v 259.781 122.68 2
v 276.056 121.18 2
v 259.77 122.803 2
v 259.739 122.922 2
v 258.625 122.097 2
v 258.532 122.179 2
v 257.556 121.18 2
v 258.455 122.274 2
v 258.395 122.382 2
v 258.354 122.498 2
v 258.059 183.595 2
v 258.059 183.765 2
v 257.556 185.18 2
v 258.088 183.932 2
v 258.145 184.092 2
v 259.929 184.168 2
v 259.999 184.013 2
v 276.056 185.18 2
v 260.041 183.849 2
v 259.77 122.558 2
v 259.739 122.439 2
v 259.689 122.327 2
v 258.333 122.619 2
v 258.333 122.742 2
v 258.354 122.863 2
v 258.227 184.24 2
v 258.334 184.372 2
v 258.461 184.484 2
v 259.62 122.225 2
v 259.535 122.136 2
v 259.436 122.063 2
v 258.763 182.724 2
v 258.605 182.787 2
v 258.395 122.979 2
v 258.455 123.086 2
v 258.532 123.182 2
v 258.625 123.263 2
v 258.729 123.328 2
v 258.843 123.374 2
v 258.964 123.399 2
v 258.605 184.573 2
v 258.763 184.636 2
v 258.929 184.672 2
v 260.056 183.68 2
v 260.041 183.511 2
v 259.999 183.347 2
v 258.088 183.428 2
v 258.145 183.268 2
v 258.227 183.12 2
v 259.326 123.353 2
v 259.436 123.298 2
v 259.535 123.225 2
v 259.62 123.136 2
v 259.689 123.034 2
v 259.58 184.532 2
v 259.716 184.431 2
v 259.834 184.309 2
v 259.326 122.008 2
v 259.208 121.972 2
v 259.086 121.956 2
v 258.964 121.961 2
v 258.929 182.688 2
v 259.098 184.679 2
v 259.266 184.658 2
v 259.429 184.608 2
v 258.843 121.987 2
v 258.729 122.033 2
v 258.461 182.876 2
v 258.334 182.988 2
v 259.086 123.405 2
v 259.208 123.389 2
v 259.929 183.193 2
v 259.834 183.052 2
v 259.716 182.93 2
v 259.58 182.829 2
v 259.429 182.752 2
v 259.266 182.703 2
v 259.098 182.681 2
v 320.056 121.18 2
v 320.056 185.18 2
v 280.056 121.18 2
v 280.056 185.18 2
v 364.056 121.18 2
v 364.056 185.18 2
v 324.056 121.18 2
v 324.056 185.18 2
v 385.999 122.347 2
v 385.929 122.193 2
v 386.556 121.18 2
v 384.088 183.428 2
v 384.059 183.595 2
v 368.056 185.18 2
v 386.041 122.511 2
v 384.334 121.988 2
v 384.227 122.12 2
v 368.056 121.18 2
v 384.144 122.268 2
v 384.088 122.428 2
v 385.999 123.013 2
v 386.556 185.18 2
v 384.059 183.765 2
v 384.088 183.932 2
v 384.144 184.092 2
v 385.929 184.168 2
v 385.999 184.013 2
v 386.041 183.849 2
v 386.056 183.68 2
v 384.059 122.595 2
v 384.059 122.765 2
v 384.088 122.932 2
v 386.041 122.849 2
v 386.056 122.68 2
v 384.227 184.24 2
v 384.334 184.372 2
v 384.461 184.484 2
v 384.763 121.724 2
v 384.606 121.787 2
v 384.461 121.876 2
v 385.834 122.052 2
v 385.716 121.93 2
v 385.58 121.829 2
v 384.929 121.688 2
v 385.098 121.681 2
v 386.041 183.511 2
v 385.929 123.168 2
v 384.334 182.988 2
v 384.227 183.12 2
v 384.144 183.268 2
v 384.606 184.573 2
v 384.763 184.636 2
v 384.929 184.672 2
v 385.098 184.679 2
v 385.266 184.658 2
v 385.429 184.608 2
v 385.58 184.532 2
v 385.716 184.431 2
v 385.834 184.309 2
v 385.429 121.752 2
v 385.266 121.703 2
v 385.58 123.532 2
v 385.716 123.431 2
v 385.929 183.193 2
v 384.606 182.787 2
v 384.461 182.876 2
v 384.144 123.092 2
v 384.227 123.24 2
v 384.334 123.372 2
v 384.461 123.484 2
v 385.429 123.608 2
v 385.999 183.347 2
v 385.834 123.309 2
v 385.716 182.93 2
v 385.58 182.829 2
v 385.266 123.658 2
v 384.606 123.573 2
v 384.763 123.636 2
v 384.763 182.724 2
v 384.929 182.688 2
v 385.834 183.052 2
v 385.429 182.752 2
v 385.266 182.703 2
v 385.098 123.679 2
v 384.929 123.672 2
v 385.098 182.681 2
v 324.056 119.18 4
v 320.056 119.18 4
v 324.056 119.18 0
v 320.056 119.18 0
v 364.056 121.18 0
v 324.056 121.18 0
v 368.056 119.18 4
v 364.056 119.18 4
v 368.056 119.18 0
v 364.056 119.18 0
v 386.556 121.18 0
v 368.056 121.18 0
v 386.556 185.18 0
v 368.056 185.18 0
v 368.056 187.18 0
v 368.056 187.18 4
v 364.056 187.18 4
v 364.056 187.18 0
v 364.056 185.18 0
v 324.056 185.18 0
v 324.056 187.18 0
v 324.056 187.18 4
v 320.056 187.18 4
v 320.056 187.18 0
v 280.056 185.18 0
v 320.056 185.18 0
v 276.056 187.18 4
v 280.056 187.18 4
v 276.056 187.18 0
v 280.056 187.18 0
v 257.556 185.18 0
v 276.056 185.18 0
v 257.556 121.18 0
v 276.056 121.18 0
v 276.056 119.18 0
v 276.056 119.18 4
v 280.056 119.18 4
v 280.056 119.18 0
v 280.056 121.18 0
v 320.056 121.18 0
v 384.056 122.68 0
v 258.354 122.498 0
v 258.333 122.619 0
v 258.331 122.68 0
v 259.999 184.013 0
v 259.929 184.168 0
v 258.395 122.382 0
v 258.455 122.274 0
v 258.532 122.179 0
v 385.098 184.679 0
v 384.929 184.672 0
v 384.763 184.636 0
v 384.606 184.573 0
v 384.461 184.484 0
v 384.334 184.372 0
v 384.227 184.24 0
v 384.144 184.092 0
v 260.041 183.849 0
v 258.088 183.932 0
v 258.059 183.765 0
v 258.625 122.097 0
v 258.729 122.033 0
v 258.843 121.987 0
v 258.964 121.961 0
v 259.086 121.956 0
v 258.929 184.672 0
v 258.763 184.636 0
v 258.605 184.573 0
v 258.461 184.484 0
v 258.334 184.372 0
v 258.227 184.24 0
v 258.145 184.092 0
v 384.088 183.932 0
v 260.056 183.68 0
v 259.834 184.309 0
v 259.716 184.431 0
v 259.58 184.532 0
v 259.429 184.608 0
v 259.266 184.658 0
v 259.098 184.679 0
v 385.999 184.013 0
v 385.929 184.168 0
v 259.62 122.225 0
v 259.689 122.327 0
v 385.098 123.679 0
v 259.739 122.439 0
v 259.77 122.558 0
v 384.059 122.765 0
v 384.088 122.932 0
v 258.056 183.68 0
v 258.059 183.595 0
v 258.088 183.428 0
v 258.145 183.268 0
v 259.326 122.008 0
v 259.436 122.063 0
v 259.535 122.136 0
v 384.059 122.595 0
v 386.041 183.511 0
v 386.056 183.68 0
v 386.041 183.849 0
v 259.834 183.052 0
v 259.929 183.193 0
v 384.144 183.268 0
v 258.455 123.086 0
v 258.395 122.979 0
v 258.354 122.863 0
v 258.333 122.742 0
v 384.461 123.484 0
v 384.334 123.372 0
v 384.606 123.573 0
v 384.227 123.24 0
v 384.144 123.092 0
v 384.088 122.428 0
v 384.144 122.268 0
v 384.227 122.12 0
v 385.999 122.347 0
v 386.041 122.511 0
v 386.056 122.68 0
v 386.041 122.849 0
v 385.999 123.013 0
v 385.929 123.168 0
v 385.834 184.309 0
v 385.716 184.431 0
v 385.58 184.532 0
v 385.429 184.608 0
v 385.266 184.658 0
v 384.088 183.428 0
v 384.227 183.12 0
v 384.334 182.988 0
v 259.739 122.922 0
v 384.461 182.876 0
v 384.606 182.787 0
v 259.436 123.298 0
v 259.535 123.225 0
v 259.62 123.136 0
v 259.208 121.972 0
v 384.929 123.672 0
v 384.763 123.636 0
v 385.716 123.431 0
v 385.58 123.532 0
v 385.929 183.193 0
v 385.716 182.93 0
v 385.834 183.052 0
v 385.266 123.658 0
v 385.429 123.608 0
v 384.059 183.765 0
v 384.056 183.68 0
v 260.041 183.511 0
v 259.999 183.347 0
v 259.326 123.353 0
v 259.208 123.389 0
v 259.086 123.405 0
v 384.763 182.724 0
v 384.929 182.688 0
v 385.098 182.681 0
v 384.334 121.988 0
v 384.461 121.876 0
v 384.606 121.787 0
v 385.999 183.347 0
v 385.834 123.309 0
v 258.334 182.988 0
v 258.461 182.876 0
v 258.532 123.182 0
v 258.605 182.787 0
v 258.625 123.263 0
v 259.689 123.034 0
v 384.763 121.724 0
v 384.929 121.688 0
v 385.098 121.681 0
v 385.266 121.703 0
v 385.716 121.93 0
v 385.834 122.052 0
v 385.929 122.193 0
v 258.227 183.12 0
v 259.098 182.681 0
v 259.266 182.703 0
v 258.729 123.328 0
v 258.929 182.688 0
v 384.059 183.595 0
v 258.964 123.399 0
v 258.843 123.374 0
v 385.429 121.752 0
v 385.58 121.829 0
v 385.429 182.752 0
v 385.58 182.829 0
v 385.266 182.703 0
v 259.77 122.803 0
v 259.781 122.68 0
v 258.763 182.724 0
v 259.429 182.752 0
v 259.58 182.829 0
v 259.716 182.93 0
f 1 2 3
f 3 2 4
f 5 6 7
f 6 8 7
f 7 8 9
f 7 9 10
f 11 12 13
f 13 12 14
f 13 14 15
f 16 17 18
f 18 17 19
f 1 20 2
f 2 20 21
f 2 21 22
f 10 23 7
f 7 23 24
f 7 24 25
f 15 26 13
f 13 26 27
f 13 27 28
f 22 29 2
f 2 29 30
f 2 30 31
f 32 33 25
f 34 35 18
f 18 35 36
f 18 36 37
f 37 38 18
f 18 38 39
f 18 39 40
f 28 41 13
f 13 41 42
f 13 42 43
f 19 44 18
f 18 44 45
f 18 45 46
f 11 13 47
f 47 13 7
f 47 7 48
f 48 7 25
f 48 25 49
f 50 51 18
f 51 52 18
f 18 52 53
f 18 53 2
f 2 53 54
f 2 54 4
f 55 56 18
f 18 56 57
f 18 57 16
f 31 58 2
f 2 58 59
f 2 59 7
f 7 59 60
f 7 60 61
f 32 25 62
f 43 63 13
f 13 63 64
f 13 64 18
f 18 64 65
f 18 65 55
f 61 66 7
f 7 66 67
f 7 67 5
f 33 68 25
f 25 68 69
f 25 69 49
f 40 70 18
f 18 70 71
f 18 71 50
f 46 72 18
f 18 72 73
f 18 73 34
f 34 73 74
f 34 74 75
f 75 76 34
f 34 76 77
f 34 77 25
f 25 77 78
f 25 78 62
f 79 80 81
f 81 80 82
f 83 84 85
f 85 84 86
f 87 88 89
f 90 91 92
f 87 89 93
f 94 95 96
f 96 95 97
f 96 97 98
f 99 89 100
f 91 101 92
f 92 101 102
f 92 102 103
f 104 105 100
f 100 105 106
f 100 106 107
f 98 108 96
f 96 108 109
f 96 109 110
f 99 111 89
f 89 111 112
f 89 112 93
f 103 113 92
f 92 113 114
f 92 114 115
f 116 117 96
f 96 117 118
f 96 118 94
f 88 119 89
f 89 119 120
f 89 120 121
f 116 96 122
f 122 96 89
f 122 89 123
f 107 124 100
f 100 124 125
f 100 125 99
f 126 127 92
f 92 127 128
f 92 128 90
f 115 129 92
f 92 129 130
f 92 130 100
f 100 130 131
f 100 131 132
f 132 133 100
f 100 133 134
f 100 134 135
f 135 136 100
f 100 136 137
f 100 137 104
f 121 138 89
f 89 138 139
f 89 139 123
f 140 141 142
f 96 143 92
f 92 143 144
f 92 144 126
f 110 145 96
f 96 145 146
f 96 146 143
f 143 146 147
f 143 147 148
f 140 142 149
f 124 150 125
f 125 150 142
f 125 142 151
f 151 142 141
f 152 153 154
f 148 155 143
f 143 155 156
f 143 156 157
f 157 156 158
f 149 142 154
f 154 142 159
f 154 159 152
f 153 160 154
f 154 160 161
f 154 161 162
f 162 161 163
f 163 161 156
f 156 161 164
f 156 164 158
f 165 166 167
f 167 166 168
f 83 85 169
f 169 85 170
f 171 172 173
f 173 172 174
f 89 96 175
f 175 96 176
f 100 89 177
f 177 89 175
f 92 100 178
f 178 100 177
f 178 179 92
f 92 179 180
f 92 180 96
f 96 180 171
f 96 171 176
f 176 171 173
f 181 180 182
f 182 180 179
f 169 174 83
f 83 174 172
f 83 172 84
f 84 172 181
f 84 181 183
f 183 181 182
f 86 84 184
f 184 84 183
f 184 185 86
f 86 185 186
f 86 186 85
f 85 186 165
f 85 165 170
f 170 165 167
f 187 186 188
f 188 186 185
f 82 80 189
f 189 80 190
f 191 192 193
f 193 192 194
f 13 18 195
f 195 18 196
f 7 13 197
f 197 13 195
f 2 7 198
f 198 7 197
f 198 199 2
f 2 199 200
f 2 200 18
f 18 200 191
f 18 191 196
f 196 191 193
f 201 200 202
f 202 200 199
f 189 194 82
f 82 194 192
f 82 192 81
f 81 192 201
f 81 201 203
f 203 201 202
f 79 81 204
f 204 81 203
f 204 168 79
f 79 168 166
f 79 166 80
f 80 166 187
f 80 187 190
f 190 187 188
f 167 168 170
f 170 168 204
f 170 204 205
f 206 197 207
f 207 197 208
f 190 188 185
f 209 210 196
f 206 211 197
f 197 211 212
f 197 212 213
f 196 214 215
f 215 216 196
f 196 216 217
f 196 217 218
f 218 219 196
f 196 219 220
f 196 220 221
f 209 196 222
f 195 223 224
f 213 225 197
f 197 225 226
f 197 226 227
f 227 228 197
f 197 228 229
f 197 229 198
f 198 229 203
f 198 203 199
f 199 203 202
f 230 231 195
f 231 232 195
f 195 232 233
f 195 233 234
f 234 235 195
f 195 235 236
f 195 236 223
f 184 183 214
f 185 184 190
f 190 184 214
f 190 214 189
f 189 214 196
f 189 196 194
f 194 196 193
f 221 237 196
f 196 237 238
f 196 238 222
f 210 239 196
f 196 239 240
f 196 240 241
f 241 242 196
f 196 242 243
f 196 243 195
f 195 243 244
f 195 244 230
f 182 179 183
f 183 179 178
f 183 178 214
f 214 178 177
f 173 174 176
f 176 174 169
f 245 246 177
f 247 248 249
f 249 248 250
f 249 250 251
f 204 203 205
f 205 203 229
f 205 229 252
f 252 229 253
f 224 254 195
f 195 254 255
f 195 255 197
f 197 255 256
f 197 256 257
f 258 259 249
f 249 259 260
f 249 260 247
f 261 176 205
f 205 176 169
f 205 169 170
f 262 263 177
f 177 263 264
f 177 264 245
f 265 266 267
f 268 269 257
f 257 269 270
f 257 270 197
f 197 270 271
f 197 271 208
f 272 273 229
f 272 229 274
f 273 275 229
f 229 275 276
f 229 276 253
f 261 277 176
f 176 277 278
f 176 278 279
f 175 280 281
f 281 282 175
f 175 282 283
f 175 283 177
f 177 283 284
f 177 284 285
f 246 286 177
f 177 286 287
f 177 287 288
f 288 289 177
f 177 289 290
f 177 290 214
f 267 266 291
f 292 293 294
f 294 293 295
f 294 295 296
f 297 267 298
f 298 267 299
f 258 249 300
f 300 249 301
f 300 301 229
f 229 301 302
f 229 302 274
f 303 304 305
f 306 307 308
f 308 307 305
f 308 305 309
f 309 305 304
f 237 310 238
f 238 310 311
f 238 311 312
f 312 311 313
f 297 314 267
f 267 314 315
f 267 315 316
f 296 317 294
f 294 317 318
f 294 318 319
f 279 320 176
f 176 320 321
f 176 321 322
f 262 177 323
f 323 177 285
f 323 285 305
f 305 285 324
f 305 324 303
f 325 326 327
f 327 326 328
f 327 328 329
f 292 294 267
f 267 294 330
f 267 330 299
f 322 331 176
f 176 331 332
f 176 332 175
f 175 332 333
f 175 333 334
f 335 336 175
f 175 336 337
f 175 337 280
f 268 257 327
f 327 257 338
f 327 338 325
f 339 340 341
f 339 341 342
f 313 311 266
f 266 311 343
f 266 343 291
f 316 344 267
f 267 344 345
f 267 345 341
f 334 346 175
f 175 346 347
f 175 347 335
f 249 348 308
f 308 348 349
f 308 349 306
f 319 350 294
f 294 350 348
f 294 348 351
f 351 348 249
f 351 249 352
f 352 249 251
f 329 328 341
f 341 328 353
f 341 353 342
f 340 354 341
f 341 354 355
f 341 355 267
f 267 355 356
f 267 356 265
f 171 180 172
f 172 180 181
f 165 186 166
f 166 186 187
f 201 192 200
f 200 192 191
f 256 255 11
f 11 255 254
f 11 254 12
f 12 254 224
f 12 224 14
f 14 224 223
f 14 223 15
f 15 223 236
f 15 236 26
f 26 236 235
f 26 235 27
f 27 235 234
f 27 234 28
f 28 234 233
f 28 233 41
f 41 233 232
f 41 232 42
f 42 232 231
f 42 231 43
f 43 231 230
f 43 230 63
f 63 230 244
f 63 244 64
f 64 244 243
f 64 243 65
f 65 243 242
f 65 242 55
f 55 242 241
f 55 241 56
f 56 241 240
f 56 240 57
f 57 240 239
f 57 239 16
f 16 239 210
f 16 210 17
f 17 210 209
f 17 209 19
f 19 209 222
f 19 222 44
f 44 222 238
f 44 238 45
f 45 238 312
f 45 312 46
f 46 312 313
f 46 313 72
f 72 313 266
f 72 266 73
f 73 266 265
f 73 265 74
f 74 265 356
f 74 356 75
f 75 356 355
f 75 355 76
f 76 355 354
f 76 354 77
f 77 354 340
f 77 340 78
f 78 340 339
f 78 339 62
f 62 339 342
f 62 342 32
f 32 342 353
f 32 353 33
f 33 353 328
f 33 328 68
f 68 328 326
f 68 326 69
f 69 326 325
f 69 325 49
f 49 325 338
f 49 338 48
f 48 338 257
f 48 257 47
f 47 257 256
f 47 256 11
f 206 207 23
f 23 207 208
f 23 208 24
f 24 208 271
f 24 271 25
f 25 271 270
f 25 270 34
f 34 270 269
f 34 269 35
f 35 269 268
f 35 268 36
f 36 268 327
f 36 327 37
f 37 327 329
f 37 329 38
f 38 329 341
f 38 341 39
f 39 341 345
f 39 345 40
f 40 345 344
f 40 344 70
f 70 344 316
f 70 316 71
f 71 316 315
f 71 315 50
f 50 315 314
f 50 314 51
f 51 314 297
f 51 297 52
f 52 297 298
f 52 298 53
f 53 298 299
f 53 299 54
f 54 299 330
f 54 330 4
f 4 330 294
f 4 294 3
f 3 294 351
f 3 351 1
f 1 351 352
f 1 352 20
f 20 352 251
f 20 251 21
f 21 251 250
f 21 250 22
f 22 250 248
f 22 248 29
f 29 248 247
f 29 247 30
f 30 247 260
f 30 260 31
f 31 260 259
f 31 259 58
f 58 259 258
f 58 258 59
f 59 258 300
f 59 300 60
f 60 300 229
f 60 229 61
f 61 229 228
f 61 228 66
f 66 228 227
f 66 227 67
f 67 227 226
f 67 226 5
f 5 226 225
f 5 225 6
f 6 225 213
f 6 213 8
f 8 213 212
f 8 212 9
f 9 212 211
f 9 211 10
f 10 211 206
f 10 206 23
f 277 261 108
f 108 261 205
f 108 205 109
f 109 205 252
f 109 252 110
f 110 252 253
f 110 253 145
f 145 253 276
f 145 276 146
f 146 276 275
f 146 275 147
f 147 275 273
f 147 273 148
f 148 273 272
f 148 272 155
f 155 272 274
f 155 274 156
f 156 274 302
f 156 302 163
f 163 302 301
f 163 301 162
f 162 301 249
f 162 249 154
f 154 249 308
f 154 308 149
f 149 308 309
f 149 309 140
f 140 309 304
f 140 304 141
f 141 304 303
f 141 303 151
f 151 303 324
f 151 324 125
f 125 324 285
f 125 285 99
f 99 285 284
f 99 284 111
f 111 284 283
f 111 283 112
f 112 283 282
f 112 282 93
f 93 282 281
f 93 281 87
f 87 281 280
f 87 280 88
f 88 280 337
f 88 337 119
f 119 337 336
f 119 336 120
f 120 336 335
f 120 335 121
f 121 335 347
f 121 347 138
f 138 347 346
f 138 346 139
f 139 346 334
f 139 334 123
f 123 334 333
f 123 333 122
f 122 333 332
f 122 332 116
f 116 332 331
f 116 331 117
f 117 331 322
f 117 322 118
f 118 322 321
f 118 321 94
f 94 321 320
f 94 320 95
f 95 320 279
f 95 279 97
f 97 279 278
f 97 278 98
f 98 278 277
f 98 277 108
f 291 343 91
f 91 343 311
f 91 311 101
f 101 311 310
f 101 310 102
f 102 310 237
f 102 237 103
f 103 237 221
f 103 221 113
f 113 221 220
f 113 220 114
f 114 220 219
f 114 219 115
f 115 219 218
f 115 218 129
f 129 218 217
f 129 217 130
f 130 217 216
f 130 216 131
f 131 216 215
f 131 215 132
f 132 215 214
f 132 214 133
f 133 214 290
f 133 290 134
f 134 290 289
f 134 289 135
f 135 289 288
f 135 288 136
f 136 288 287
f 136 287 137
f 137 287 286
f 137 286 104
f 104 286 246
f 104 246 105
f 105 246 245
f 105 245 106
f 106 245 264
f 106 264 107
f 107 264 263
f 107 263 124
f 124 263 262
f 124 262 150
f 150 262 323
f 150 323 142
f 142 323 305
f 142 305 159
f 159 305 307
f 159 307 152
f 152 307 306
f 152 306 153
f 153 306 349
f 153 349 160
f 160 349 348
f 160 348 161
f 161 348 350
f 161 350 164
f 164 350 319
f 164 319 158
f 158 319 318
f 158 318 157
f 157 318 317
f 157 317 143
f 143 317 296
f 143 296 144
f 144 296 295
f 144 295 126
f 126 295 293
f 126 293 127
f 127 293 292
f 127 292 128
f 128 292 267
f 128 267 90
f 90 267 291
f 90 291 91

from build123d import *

# Parameters (mm, degrees)
EXTRUDE_1_DEPTH     = 2
SKETCH_2_W          = 4
SKETCH_2_H          = 68
EXTRUDE_2_DEPTH     = 2
SKETCH_3_R          = 1
SKETCH_3_R_2        = 0.725
CUT_EXTRUDE_1_DEPTH = 5


with BuildPart() as part:
    # Model → 凸台-拉伸1 (new body)
    with BuildSketch(Plane.XY):
        Polygon((257.555719115, 185.180286748), (276.055719115, 185.180286748), (276.055719115, 187.180286748), (280.055719115, 187.180286748), (280.055719115, 185.180286748), (320.055719115, 185.180286748), (320.055719115, 187.180286748), (324.055719115, 187.180286748), (324.055719115, 185.180286748), (364.055719115, 185.180286748), (364.055719115, 187.180286748), (368.055719115, 187.180286748), (368.055719115, 185.180286748), (386.555719115, 185.180286748), (386.555719115, 173.180286748), (386.555719115, 169.180286748), (386.555719115, 137.180286748), (386.555719115, 133.180286748), (386.555719115, 121.180286748), (368.055719115, 121.180286748), (368.055719115, 119.180286748), (364.055719115, 119.180286748), (364.055719115, 121.180286748), (332.555719115, 121.180286748), (324.055719115, 121.180286748), (324.055719115, 119.180286748), (322.055719115, 119.180286748), (320.055719115, 119.180286748), (320.055719115, 121.180286748), (311.555719115, 121.180286748), (280.055719115, 121.180286748), (280.055719115, 119.180286748), (276.055719115, 119.180286748), (276.055719115, 121.180286748), (257.555719115, 121.180286748), (257.555719115, 133.180286748), (257.555719115, 137.180286748), (257.555719115, 169.180286748), (257.555719115, 173.180286748), align=None)
    extrude(amount=EXTRUDE_1_DEPTH)

    # 草图2 → 凸台-拉伸2 (add)
    with BuildSketch(Plane.XY.offset(2)):
        with Locations((366.055719115, 153.180286748)):
            Rectangle(SKETCH_2_W, SKETCH_2_H)
        with Locations((322.055719115, 153.180286748)):
            Rectangle(SKETCH_2_W, SKETCH_2_H)
        with Locations((278.055719115, 153.180286748)):
            Rectangle(SKETCH_2_W, SKETCH_2_H)
    extrude(amount=EXTRUDE_2_DEPTH)

    # 草图3 → 切除-拉伸1 (cut)
    with BuildSketch(Plane.XY.offset(2)):
        with Locations((259.055719115, 183.680286748)):
            Circle(SKETCH_3_R)
        with Locations((385.055719115, 183.680286748)):
            Circle(SKETCH_3_R)
        with Locations((385.055719115, 122.680286748)):
            Circle(SKETCH_3_R)
        with Locations((259.055719115, 122.680286748)):
            Circle(SKETCH_3_R_2)
    extrude(amount=-CUT_EXTRUDE_1_DEPTH, mode=Mode.SUBTRACT)


solid = part.part
